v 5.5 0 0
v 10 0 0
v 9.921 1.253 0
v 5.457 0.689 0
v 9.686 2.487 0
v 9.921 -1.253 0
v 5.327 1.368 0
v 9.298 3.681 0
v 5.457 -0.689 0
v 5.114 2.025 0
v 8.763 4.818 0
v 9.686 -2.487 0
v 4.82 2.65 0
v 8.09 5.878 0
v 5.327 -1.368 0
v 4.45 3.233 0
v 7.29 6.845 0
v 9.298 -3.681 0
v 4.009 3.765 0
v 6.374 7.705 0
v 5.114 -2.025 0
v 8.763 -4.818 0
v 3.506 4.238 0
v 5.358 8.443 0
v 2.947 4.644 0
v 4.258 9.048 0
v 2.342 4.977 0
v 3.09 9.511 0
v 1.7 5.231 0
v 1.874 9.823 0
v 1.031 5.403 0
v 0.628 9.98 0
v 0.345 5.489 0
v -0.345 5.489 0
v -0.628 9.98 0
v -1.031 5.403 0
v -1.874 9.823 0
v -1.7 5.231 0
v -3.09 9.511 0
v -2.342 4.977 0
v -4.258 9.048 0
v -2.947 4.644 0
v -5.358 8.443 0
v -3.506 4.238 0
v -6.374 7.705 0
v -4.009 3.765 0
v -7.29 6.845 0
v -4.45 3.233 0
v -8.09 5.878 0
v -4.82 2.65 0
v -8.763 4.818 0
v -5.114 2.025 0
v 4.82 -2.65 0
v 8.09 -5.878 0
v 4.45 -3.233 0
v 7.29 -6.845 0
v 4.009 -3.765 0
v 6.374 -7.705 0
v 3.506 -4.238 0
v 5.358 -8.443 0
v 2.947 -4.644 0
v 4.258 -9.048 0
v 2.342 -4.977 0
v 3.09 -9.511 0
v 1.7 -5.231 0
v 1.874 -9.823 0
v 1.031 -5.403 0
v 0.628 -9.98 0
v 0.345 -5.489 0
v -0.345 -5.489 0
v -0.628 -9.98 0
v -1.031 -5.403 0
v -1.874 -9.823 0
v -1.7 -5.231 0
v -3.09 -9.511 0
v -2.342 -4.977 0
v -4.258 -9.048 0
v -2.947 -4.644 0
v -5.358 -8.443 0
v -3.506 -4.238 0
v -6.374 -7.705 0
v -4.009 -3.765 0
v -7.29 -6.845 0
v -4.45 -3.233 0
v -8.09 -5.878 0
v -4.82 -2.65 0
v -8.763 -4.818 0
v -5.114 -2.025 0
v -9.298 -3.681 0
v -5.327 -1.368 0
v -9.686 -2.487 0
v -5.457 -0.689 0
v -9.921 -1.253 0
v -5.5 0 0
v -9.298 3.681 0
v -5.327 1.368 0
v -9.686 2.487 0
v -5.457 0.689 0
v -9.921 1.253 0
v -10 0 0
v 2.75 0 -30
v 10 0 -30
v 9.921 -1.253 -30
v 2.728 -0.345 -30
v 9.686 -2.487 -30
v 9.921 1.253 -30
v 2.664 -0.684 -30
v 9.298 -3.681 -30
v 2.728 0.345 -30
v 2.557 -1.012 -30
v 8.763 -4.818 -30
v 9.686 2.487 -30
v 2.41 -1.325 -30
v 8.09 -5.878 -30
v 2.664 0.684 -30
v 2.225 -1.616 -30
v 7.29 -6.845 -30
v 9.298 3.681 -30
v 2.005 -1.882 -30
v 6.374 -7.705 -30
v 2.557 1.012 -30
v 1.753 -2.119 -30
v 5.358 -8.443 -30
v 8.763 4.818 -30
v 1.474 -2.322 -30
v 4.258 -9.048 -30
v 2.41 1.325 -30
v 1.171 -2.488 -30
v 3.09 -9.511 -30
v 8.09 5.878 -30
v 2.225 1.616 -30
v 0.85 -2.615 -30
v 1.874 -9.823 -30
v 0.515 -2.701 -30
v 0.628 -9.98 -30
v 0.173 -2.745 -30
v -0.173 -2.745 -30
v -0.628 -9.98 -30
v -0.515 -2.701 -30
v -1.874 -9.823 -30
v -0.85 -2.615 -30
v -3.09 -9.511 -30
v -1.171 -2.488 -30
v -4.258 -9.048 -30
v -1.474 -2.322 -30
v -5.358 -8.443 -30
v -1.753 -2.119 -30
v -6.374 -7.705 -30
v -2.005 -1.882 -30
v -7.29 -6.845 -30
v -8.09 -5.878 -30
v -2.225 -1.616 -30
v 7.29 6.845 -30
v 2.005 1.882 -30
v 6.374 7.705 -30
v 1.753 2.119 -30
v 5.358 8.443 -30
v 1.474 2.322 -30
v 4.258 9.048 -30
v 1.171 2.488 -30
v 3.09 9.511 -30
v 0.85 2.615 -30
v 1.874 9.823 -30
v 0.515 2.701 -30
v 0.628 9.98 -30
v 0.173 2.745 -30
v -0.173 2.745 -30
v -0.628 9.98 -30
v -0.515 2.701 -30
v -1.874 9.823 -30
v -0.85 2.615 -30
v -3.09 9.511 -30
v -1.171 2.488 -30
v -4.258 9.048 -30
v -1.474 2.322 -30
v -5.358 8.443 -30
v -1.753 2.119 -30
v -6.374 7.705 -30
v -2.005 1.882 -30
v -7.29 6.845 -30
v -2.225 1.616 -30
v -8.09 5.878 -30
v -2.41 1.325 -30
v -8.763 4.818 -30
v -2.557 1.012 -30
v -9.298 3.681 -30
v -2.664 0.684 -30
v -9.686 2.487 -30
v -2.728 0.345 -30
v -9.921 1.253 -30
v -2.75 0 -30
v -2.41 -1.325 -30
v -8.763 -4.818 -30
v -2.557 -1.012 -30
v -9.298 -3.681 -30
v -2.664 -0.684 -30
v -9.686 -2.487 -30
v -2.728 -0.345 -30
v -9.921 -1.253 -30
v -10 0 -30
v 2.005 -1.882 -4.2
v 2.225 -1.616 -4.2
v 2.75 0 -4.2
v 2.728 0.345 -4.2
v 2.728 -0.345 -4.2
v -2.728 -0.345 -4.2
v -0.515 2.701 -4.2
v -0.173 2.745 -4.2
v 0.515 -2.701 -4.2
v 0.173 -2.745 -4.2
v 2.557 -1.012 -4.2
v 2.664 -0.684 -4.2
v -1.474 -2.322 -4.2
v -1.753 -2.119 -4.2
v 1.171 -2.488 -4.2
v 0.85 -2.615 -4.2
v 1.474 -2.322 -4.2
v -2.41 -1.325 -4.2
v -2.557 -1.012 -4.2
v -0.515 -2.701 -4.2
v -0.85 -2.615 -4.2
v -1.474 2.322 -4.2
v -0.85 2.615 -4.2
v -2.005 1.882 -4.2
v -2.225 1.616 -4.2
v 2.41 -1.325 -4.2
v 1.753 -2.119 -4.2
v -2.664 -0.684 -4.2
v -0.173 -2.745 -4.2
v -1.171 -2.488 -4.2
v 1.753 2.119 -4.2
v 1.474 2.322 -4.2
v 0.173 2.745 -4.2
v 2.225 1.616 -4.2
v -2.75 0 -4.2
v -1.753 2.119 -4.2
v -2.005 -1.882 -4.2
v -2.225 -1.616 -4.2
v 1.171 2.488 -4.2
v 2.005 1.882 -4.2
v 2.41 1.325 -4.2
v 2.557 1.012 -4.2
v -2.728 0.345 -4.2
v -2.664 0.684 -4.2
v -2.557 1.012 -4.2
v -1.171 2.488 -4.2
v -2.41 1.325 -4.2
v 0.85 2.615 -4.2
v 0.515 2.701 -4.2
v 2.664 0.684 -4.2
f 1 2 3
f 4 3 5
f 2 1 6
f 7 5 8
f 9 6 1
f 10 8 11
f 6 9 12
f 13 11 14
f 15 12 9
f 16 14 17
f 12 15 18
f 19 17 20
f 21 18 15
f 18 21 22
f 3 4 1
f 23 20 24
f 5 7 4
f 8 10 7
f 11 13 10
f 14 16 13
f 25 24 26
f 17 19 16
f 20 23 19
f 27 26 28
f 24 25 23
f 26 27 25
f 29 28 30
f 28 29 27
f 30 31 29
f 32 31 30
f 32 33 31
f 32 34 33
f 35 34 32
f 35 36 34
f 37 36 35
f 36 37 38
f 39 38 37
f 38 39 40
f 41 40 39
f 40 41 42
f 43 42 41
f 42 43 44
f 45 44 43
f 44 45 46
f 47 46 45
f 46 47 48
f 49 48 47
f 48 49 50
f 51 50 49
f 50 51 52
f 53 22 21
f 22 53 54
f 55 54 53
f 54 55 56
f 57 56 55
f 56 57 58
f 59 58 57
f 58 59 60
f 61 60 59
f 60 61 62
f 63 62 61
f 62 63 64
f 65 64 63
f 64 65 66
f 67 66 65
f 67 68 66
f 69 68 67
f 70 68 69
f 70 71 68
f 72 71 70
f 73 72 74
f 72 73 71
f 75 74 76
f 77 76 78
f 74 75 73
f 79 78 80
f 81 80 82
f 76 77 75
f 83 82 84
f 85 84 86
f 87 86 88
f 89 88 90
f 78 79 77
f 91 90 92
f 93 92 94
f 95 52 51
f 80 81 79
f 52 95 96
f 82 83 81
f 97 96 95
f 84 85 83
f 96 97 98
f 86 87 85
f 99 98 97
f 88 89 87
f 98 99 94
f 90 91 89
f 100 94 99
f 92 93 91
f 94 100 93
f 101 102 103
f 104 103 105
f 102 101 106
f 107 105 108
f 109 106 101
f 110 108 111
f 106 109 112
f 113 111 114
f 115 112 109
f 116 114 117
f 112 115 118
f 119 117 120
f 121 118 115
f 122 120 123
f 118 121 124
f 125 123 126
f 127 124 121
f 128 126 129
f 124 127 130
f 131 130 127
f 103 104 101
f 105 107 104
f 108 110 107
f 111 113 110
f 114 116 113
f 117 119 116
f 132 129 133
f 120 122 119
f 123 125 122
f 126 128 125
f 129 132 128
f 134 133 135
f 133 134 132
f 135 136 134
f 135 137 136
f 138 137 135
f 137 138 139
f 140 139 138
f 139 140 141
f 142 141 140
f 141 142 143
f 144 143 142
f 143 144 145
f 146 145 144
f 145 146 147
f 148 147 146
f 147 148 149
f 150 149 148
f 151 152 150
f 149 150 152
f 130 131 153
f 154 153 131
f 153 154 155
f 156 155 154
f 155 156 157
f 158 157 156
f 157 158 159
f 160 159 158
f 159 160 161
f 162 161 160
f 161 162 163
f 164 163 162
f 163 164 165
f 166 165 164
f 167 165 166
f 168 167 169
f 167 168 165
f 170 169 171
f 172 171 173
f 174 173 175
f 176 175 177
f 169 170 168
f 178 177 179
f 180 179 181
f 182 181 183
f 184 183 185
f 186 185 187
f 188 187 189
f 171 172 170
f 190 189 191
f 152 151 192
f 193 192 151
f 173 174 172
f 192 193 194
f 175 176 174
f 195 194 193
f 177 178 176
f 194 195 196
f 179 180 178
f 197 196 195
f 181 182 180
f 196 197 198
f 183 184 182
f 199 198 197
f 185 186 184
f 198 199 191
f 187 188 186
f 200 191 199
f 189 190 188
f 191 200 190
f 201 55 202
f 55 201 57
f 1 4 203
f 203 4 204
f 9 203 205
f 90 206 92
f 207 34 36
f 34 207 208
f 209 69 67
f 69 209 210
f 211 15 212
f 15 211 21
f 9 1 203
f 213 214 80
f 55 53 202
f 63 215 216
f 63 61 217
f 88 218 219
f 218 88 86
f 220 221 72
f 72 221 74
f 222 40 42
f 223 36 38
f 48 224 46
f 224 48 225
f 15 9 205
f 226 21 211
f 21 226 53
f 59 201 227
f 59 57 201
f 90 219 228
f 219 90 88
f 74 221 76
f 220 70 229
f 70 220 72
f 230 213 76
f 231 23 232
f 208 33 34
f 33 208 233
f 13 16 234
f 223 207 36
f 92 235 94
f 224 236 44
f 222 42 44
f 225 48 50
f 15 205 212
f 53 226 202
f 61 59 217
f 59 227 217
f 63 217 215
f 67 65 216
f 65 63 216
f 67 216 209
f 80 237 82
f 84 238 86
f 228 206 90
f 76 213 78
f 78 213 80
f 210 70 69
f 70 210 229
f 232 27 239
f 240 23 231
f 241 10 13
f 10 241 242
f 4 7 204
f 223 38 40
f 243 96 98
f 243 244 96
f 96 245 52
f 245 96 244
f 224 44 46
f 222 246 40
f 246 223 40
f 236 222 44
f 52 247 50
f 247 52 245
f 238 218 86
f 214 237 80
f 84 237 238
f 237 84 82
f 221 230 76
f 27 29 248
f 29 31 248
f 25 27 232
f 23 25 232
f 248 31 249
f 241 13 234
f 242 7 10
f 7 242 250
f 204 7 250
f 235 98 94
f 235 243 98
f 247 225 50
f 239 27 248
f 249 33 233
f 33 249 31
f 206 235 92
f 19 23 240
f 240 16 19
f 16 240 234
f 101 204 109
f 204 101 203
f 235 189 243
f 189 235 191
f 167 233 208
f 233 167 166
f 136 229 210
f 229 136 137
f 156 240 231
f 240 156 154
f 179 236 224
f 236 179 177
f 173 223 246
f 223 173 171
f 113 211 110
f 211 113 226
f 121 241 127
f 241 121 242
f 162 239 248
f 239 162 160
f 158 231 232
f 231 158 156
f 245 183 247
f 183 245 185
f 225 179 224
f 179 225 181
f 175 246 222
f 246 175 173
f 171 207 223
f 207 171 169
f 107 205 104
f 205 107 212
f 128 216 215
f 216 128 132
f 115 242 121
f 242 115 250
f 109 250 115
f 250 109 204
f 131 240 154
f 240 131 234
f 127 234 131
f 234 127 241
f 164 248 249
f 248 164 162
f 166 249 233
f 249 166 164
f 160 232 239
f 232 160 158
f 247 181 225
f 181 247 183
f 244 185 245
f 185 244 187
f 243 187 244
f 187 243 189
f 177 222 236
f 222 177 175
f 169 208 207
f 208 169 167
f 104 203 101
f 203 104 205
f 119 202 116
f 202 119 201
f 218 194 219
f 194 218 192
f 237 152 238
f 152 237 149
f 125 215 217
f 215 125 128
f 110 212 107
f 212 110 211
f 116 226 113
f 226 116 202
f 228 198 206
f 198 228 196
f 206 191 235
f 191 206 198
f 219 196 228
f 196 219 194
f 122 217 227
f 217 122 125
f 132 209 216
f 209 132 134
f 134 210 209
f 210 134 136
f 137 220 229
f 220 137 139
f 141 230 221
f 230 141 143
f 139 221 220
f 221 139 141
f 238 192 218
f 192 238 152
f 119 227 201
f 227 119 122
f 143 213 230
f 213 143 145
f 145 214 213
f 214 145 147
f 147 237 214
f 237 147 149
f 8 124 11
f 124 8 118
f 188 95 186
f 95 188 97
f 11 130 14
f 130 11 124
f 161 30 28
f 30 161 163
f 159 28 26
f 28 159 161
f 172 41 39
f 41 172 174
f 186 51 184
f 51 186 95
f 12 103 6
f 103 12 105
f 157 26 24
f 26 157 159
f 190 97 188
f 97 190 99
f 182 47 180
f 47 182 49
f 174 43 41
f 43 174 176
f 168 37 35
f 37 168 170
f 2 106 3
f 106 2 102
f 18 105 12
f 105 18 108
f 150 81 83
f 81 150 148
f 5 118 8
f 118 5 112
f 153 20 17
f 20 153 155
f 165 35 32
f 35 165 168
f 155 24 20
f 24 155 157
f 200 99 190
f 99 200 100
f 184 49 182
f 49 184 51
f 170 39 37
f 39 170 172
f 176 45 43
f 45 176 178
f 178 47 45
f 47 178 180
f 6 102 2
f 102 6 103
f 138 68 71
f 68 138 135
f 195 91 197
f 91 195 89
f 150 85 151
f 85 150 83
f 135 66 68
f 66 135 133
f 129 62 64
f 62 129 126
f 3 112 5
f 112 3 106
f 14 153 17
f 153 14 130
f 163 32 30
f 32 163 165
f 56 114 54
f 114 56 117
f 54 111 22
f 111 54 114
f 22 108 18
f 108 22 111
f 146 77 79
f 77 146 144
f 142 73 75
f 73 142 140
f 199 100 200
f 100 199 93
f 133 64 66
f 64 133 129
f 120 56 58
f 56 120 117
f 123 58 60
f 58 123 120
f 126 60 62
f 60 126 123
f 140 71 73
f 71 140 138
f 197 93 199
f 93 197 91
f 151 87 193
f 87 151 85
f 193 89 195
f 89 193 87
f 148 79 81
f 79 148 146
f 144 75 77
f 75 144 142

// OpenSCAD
$fn = 50;


difference() {
	union() {
		translate(v = [0, 0, -30.0000000000]) {
			cylinder(h = 30, r = 10.0000000000);
		}
		cylinder(h = 0, r = 13.0000000000);
	}
	union() {
		translate(v = [0, 0, 0]) {
			rotate(a = [0, 0, 0]) {
				difference() {
					union() {
						#translate(v = [0, 0, -30.0000000000]) {
							cylinder(h = 30, r = 2.2500000000);
						}
						#translate(v = [0, 0, -4.2000000000]) {
							cylinder(h = 4.2000000000, r = 10.0000000000, r1 = 2.7500000000, r2 = 5.5000000000);
						}
						#translate(v = [0, 0, -30.0000000000]) {
							cylinder(h = 30, r = 2.7500000000);
						}
						#translate(v = [0, 0, -30.0000000000]) {
							cylinder(h = 30, r = 2.2500000000);
						}
					}
					union();
				}
			}
		}
	}
}
